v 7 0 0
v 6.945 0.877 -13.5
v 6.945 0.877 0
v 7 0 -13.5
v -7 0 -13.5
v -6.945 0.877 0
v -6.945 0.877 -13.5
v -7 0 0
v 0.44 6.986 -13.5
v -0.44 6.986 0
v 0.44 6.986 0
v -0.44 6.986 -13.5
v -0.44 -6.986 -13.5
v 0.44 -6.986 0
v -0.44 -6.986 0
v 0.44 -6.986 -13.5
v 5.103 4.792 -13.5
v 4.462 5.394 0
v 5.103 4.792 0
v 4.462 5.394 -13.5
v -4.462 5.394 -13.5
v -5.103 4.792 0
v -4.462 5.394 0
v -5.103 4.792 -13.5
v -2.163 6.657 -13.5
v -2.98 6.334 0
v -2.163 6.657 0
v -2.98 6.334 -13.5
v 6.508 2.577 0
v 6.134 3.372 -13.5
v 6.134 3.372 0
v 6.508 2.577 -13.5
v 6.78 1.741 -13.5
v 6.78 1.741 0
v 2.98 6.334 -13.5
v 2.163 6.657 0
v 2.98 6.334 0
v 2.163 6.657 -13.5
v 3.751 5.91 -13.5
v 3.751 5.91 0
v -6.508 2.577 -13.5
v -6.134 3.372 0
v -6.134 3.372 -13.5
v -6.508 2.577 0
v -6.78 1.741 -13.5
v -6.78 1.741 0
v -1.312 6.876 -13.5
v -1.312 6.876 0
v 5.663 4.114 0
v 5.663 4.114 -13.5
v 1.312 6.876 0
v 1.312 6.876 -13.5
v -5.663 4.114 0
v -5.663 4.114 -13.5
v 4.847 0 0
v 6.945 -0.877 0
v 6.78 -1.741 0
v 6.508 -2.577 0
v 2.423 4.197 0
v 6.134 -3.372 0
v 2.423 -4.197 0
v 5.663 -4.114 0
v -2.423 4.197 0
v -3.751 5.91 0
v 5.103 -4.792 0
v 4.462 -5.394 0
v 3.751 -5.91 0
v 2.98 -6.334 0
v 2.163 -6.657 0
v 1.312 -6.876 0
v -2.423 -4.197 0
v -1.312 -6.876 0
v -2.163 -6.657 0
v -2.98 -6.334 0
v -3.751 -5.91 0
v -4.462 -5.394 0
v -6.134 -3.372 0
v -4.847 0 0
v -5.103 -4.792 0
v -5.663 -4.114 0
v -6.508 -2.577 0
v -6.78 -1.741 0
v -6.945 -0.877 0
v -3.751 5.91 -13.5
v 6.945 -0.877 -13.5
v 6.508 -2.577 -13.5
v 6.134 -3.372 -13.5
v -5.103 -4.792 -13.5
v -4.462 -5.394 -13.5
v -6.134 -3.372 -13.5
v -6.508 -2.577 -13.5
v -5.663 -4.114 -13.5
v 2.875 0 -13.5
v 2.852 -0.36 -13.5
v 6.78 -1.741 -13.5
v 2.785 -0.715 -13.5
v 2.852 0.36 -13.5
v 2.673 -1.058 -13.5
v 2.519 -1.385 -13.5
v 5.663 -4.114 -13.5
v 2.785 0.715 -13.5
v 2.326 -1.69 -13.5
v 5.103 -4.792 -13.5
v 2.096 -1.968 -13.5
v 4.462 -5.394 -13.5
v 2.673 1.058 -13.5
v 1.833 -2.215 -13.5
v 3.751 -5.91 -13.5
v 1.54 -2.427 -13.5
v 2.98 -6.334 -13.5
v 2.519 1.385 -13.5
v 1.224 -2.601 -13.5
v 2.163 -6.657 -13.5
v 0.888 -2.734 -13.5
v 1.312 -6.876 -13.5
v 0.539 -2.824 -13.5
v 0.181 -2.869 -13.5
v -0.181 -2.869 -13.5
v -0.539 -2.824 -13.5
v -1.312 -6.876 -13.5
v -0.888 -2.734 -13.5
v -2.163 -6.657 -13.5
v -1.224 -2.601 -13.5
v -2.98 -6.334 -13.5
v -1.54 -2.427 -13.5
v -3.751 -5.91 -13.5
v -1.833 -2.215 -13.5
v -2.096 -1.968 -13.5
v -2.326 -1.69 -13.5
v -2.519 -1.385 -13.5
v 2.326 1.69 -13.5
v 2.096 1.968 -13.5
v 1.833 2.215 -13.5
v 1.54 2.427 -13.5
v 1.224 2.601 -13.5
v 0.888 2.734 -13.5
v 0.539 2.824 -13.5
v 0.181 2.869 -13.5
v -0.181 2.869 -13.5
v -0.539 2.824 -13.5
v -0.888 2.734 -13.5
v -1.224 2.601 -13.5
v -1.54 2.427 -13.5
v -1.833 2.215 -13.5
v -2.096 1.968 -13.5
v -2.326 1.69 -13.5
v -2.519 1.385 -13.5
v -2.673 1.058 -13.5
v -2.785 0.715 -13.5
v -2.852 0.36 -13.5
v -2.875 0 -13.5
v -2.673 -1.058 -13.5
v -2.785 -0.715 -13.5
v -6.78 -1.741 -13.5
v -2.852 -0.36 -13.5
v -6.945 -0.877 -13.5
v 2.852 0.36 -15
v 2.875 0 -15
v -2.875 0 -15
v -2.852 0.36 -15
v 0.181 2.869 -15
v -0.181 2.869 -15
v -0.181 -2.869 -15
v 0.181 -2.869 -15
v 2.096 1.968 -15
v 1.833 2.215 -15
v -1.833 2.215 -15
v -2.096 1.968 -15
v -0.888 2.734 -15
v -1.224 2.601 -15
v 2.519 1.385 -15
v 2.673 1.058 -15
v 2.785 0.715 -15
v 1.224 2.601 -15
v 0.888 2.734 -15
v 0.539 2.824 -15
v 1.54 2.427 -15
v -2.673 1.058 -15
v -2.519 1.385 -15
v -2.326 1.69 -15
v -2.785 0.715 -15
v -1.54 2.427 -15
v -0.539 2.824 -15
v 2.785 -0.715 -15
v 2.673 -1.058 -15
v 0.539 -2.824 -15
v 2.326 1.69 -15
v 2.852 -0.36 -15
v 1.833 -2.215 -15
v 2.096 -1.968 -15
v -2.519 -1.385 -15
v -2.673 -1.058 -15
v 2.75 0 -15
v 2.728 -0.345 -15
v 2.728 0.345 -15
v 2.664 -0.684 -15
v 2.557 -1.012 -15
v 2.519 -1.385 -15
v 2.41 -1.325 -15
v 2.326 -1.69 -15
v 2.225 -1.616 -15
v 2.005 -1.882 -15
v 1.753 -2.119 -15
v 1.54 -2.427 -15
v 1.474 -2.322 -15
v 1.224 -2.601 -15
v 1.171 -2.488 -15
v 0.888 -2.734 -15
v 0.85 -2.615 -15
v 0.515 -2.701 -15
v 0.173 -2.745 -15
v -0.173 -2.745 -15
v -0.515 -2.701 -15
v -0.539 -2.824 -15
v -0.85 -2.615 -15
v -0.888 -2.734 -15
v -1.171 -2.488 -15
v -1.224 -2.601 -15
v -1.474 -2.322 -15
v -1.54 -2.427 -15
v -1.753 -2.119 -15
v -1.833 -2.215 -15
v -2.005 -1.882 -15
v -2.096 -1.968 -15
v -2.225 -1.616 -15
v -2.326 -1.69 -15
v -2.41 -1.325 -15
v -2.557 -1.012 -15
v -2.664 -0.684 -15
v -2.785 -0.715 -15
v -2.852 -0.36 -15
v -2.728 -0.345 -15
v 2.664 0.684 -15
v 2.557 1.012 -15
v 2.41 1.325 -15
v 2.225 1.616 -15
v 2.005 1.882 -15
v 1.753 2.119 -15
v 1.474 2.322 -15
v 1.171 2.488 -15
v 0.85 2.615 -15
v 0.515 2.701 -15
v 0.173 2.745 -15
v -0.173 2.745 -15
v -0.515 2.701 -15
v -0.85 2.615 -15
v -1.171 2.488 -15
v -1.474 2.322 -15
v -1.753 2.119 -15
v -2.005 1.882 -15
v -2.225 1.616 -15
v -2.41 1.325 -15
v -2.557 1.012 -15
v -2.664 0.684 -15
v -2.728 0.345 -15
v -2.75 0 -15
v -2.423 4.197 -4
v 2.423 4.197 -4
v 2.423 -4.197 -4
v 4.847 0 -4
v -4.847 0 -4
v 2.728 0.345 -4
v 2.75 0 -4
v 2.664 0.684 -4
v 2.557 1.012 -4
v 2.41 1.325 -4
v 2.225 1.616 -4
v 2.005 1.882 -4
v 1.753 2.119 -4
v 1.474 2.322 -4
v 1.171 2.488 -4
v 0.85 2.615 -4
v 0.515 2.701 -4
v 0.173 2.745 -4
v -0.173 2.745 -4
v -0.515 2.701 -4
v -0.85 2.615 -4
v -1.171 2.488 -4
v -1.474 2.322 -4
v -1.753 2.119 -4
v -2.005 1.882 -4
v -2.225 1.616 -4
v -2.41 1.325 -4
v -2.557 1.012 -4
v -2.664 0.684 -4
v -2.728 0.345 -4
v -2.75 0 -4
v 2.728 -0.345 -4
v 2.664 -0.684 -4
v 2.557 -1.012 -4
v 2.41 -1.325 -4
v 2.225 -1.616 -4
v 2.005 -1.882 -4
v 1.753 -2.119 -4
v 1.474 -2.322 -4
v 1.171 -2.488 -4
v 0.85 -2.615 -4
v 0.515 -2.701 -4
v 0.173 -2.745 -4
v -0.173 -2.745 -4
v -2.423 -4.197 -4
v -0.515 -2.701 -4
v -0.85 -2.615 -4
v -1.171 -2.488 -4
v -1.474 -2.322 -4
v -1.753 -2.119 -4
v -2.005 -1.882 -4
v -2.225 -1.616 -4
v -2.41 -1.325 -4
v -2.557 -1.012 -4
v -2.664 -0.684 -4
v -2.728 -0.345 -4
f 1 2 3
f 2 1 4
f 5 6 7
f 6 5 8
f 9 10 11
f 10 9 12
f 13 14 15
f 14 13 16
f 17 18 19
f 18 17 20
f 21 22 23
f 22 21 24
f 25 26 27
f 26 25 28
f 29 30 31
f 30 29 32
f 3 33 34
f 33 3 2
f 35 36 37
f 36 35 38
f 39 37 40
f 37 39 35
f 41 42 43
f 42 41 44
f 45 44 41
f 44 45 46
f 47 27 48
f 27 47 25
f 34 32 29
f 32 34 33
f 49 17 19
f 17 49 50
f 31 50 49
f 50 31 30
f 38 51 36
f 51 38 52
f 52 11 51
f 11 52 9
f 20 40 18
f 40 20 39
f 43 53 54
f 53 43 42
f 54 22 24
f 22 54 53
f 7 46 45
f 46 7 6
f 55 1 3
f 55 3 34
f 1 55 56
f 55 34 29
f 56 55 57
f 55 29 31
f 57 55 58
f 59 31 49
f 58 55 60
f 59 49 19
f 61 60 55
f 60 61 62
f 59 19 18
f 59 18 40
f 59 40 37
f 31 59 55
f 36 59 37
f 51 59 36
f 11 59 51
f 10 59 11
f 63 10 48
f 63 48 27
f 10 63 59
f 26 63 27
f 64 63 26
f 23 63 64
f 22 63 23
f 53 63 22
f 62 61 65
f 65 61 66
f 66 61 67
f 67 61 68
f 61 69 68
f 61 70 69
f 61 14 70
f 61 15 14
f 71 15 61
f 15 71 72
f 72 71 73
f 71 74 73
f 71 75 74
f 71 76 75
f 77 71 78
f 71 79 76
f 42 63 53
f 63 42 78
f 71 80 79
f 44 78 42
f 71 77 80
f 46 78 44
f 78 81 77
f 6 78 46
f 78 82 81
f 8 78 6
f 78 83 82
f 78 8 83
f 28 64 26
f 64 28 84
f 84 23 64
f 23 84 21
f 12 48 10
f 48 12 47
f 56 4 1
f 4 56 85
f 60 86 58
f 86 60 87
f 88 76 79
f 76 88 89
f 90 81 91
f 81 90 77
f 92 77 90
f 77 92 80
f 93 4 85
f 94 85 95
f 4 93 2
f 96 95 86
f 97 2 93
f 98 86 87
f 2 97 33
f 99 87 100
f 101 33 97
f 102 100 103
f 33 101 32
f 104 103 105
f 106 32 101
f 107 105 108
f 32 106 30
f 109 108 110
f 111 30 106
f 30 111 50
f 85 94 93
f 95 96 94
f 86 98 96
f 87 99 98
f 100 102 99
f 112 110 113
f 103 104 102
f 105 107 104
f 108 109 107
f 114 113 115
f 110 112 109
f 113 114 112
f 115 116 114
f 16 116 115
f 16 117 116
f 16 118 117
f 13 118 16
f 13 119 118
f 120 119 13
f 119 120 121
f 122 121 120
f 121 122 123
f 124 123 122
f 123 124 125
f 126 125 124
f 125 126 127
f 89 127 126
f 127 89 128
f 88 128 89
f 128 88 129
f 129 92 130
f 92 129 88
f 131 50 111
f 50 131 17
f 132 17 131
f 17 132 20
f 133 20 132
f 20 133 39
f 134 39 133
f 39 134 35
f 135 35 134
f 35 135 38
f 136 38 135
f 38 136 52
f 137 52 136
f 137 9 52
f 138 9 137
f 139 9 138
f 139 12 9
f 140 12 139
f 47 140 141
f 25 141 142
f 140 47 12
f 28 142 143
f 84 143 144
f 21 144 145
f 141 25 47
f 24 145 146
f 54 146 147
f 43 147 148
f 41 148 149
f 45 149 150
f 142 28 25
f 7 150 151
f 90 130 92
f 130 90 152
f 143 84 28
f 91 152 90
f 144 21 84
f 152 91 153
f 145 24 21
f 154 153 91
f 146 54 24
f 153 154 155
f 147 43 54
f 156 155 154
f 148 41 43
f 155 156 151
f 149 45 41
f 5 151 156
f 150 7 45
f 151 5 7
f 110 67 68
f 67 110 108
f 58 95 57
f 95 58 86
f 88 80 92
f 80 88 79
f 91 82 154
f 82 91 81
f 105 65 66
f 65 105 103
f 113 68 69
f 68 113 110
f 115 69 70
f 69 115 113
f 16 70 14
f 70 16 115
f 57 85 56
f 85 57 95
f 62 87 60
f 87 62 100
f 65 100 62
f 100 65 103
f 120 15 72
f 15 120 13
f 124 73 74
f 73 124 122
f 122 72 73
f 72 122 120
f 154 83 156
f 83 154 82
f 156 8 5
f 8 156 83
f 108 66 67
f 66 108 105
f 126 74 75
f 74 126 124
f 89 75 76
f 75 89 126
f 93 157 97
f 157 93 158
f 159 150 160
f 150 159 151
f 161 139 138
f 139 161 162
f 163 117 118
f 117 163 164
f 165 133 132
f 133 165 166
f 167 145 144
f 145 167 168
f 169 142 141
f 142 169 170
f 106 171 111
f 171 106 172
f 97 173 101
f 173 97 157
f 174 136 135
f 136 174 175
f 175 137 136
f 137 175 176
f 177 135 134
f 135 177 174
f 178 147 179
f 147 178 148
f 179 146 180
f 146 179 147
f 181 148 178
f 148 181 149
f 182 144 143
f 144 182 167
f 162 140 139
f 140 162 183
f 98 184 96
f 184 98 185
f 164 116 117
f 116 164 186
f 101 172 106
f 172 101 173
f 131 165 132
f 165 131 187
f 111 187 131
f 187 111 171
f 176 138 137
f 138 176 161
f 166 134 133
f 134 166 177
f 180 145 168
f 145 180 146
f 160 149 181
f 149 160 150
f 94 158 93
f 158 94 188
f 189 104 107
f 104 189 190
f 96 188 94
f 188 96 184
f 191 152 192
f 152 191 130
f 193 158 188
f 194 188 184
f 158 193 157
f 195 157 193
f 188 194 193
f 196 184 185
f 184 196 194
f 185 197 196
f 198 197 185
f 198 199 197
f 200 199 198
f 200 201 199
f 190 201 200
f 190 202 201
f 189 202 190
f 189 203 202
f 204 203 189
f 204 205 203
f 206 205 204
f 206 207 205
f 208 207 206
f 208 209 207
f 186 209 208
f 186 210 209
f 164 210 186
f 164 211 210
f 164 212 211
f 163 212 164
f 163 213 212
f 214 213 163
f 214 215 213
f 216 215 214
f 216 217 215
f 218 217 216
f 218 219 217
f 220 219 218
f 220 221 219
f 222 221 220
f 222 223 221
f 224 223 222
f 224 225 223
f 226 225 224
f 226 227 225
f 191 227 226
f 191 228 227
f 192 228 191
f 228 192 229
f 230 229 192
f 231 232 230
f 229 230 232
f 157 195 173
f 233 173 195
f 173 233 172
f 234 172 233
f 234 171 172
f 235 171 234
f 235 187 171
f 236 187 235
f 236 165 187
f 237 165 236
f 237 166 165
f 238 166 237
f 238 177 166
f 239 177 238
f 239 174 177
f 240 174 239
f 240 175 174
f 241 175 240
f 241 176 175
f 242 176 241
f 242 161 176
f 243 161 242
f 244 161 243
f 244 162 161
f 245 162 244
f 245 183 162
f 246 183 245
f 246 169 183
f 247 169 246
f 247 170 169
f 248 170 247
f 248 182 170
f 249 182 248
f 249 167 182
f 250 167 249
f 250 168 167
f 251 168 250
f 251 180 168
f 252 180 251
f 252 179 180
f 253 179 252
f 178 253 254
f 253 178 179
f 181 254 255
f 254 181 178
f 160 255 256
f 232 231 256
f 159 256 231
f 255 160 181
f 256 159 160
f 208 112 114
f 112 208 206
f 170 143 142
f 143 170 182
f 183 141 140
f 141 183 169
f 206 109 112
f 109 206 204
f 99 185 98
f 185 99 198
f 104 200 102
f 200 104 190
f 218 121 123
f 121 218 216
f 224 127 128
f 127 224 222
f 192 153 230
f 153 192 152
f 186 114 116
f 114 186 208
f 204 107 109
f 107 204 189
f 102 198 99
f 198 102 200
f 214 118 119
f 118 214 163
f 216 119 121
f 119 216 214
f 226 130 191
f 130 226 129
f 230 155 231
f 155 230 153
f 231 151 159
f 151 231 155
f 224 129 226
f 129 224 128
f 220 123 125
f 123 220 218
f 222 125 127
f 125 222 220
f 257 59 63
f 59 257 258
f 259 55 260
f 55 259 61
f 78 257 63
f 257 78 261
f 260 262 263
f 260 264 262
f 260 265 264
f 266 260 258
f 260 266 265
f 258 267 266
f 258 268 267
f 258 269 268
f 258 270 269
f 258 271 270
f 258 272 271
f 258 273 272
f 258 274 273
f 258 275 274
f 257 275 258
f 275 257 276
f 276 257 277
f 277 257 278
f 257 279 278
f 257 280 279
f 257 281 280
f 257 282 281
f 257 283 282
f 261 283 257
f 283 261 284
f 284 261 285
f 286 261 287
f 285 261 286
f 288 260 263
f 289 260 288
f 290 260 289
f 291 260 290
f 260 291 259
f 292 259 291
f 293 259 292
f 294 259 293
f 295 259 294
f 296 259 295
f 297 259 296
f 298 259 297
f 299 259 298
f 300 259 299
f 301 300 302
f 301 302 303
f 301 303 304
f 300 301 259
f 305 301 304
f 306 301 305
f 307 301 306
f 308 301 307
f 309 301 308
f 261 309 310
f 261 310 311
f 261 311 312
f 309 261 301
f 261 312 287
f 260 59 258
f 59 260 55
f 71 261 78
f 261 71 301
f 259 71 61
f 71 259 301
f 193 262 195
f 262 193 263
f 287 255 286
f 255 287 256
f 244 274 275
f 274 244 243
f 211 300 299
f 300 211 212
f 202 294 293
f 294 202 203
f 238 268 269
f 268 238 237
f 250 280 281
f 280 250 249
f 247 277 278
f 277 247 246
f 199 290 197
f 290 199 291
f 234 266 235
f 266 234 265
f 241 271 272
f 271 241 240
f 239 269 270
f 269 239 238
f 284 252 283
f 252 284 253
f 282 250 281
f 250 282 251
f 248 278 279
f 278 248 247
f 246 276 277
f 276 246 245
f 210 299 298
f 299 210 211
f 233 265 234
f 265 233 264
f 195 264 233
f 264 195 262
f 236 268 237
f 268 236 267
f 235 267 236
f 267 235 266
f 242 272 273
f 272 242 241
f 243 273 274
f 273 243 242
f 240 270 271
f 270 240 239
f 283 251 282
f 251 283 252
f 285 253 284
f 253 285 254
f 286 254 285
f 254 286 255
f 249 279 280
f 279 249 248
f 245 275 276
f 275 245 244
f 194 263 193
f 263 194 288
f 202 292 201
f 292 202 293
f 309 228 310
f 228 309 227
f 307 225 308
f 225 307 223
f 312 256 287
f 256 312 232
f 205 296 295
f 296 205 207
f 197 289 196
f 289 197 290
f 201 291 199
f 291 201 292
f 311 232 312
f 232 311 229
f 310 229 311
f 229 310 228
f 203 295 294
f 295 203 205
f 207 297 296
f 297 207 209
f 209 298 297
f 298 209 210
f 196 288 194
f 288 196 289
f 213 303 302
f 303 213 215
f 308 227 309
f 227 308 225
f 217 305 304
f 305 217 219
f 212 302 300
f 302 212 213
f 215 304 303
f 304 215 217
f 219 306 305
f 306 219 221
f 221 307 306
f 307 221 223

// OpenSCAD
$fn = 50;


difference() {
	union() {
		translate(v = [0, 0, -13.5000000000]) {
			cylinder(h = 13.5000000000, r = 7.0000000000);
		}
		translate(v = [0, 0, -15.0000000000]) {
			cylinder(h = 15, r = 2.8750000000);
		}
	}
	union() {
		translate(v = [0, 0, 0]) {
			rotate(a = [0, 0, 0]) {
				difference() {
					union() {
						translate(v = [0, 0, -4]) {
							linear_extrude(height = 4) {
								polygon(points = [[4.8468000000, 0.0000000000], [2.4234000000, 4.1974519271], [-2.4234000000, 4.1974519271], [-4.8468000000, 0.0000000000], [-2.4234000000, -4.1974519271], [2.4234000000, -4.1974519271]]);
							}
						}
					}
					union();
				}
			}
		}
		#translate(v = [0, 0, -100.0000000000]) {
			cylinder(h = 200, r = 2.7500000000);
		}
	}
}
